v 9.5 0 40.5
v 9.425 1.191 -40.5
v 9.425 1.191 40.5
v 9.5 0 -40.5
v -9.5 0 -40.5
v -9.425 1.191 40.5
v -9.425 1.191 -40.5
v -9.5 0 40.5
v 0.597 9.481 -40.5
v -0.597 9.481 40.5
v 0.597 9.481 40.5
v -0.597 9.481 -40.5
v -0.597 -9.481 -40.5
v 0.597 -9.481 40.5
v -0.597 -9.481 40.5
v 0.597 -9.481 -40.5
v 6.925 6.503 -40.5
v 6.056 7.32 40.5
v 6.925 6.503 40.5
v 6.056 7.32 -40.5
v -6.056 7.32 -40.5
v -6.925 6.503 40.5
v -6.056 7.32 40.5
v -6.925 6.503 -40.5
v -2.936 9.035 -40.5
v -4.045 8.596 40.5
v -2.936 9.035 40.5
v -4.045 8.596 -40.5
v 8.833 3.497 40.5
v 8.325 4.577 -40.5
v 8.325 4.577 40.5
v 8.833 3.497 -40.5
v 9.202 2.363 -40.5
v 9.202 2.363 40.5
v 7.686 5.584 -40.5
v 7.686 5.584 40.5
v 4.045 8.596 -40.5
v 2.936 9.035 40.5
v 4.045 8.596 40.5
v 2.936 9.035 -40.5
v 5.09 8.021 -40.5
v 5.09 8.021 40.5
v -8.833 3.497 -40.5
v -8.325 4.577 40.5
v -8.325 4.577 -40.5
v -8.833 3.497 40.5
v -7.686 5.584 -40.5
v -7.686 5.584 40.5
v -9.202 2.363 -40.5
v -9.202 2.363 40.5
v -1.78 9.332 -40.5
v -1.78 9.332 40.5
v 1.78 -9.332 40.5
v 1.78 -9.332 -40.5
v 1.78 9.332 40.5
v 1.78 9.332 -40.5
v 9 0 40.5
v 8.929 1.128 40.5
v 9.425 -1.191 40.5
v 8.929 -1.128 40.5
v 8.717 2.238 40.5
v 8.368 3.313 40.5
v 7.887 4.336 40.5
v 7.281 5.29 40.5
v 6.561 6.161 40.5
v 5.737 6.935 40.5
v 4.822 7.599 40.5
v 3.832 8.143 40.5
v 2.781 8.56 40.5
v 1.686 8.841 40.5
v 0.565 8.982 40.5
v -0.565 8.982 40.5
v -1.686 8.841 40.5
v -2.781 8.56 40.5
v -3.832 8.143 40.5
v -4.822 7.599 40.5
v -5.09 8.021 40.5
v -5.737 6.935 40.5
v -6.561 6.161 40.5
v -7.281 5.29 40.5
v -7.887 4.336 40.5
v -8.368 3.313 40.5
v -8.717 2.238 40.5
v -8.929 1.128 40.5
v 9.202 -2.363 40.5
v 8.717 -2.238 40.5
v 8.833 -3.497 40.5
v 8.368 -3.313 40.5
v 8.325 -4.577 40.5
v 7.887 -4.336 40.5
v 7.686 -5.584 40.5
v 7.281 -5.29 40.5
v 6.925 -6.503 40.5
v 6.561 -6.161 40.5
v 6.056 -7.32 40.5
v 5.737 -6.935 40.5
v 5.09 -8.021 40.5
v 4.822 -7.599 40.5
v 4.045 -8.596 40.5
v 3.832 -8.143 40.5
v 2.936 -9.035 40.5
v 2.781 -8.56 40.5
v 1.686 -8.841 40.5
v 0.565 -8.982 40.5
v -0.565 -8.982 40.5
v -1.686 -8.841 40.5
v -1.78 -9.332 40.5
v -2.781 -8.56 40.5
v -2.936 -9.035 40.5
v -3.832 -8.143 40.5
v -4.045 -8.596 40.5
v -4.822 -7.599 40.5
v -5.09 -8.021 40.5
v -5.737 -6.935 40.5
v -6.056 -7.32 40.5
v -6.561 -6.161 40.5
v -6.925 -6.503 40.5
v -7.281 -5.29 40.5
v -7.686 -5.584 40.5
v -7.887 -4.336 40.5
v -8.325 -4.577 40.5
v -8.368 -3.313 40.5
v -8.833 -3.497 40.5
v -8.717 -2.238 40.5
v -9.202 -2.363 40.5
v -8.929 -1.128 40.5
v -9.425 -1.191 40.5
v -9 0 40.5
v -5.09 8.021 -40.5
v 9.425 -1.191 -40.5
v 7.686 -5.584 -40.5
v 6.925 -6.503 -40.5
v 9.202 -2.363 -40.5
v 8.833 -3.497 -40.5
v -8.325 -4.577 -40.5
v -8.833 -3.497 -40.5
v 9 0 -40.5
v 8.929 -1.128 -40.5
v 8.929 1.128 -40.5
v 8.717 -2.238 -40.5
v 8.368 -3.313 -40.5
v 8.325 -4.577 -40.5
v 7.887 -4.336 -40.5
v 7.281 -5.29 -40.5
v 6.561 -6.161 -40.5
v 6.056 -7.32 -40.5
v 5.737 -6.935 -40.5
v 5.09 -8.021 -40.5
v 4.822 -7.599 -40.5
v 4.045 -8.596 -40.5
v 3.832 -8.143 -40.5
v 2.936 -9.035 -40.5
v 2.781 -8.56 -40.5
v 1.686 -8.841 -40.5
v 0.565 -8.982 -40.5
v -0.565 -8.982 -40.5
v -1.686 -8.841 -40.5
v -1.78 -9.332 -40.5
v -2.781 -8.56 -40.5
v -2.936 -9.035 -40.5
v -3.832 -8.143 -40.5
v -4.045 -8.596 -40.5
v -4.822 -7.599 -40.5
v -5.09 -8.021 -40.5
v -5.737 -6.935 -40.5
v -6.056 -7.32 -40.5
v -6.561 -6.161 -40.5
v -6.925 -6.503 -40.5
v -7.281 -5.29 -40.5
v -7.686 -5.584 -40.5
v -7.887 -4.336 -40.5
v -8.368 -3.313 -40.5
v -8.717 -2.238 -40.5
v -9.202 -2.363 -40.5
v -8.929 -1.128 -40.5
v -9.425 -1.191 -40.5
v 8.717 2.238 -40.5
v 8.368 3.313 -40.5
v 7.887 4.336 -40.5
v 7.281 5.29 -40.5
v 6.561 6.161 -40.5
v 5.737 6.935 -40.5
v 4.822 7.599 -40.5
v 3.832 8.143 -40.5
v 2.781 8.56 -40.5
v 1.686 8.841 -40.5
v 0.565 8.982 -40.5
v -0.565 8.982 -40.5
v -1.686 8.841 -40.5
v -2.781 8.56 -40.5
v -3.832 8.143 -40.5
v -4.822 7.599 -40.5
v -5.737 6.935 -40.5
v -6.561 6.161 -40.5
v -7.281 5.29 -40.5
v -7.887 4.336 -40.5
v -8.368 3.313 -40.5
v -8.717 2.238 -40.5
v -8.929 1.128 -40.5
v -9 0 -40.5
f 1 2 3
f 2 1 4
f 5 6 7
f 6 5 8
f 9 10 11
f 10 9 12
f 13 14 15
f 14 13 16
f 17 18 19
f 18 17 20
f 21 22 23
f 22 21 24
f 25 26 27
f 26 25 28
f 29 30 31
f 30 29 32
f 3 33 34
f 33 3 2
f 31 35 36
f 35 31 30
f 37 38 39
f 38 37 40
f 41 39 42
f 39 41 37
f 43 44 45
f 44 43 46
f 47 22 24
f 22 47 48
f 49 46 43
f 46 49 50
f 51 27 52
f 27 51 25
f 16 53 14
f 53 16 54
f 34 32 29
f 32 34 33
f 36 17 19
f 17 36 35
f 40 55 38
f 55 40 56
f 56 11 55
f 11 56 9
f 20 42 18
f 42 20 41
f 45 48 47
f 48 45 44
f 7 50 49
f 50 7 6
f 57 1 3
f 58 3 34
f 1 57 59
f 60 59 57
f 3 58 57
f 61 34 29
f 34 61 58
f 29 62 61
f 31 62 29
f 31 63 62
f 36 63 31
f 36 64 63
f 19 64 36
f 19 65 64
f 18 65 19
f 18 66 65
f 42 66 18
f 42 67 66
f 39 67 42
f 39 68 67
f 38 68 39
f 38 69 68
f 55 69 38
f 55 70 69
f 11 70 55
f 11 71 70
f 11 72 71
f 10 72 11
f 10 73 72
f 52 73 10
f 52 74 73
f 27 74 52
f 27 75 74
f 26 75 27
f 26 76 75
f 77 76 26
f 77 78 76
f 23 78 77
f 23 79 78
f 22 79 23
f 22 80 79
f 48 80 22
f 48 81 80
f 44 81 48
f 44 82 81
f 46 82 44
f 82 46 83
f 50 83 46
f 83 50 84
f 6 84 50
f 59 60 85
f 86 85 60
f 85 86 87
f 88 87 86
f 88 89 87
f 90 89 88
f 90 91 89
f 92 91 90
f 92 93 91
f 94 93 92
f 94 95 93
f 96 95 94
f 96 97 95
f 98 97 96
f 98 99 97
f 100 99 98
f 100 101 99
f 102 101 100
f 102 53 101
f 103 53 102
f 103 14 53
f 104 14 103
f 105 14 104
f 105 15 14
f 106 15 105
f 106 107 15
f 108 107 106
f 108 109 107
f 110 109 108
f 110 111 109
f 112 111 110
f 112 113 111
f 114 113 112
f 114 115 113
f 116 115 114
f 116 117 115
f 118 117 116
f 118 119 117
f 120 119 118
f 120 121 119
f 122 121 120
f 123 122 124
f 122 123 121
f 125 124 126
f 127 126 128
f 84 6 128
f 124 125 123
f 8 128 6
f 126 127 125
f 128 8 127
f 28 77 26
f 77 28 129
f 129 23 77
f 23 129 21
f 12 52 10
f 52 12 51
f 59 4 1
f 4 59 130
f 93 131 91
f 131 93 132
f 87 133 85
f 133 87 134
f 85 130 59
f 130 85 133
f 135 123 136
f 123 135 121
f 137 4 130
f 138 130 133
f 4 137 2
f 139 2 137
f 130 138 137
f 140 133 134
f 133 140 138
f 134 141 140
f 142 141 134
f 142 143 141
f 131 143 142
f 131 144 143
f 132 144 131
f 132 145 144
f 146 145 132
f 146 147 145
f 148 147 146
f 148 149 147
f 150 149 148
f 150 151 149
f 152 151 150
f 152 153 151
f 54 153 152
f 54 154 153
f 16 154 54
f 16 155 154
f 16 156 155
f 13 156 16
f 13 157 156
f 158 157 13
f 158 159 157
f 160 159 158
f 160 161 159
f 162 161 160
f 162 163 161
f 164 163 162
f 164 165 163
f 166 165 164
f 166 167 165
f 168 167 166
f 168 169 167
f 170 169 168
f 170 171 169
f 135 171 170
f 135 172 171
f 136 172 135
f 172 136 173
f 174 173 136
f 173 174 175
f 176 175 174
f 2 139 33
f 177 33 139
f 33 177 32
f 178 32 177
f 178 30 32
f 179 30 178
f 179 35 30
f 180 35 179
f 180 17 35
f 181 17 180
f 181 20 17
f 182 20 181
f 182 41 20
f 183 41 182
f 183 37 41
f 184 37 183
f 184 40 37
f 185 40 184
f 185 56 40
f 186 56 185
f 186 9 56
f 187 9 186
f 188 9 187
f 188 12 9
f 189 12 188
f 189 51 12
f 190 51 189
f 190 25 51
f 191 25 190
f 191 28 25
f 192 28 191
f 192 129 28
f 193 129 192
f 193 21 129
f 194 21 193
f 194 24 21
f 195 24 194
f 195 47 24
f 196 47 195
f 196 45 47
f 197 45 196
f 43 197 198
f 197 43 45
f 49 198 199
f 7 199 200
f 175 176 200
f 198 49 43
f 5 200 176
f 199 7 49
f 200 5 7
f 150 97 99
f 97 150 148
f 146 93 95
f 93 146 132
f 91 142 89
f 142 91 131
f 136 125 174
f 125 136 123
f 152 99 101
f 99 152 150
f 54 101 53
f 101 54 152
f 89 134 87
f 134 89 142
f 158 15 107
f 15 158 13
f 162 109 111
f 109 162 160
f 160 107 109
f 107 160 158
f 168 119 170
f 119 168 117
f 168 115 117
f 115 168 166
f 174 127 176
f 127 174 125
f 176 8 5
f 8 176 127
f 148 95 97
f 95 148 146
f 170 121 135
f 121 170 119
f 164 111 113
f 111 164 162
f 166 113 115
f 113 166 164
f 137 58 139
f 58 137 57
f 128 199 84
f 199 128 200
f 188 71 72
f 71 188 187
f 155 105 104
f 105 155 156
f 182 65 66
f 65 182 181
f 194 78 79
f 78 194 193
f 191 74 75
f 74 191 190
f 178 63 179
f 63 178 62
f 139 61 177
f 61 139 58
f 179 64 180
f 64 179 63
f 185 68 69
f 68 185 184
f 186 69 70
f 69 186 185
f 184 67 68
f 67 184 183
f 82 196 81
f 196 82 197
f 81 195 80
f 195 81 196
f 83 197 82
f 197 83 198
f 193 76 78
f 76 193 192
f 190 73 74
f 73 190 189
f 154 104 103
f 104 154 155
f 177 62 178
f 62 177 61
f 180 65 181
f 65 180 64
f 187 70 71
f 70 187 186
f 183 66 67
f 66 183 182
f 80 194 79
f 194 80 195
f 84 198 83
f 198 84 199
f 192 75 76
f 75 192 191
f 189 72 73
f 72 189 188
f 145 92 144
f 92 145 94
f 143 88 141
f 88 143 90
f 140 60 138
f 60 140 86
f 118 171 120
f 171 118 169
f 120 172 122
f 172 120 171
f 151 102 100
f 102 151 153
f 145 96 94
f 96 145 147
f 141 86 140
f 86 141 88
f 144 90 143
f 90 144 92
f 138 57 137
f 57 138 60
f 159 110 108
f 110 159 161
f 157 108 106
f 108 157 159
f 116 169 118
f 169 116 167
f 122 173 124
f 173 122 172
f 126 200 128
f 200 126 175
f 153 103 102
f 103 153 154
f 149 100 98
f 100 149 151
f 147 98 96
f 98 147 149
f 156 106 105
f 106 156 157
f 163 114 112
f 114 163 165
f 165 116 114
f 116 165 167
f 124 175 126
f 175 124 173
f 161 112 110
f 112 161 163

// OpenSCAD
$fn = 50;


difference() {
	union() {
		translate(v = [0, 0, -40.5000000000]) {
			cylinder(h = 81, r = 9.5000000000);
		}
	}
	union() {
		translate(v = [0, 0, -100.0000000000]) {
			cylinder(h = 200, r = 9);
		}
	}
}
